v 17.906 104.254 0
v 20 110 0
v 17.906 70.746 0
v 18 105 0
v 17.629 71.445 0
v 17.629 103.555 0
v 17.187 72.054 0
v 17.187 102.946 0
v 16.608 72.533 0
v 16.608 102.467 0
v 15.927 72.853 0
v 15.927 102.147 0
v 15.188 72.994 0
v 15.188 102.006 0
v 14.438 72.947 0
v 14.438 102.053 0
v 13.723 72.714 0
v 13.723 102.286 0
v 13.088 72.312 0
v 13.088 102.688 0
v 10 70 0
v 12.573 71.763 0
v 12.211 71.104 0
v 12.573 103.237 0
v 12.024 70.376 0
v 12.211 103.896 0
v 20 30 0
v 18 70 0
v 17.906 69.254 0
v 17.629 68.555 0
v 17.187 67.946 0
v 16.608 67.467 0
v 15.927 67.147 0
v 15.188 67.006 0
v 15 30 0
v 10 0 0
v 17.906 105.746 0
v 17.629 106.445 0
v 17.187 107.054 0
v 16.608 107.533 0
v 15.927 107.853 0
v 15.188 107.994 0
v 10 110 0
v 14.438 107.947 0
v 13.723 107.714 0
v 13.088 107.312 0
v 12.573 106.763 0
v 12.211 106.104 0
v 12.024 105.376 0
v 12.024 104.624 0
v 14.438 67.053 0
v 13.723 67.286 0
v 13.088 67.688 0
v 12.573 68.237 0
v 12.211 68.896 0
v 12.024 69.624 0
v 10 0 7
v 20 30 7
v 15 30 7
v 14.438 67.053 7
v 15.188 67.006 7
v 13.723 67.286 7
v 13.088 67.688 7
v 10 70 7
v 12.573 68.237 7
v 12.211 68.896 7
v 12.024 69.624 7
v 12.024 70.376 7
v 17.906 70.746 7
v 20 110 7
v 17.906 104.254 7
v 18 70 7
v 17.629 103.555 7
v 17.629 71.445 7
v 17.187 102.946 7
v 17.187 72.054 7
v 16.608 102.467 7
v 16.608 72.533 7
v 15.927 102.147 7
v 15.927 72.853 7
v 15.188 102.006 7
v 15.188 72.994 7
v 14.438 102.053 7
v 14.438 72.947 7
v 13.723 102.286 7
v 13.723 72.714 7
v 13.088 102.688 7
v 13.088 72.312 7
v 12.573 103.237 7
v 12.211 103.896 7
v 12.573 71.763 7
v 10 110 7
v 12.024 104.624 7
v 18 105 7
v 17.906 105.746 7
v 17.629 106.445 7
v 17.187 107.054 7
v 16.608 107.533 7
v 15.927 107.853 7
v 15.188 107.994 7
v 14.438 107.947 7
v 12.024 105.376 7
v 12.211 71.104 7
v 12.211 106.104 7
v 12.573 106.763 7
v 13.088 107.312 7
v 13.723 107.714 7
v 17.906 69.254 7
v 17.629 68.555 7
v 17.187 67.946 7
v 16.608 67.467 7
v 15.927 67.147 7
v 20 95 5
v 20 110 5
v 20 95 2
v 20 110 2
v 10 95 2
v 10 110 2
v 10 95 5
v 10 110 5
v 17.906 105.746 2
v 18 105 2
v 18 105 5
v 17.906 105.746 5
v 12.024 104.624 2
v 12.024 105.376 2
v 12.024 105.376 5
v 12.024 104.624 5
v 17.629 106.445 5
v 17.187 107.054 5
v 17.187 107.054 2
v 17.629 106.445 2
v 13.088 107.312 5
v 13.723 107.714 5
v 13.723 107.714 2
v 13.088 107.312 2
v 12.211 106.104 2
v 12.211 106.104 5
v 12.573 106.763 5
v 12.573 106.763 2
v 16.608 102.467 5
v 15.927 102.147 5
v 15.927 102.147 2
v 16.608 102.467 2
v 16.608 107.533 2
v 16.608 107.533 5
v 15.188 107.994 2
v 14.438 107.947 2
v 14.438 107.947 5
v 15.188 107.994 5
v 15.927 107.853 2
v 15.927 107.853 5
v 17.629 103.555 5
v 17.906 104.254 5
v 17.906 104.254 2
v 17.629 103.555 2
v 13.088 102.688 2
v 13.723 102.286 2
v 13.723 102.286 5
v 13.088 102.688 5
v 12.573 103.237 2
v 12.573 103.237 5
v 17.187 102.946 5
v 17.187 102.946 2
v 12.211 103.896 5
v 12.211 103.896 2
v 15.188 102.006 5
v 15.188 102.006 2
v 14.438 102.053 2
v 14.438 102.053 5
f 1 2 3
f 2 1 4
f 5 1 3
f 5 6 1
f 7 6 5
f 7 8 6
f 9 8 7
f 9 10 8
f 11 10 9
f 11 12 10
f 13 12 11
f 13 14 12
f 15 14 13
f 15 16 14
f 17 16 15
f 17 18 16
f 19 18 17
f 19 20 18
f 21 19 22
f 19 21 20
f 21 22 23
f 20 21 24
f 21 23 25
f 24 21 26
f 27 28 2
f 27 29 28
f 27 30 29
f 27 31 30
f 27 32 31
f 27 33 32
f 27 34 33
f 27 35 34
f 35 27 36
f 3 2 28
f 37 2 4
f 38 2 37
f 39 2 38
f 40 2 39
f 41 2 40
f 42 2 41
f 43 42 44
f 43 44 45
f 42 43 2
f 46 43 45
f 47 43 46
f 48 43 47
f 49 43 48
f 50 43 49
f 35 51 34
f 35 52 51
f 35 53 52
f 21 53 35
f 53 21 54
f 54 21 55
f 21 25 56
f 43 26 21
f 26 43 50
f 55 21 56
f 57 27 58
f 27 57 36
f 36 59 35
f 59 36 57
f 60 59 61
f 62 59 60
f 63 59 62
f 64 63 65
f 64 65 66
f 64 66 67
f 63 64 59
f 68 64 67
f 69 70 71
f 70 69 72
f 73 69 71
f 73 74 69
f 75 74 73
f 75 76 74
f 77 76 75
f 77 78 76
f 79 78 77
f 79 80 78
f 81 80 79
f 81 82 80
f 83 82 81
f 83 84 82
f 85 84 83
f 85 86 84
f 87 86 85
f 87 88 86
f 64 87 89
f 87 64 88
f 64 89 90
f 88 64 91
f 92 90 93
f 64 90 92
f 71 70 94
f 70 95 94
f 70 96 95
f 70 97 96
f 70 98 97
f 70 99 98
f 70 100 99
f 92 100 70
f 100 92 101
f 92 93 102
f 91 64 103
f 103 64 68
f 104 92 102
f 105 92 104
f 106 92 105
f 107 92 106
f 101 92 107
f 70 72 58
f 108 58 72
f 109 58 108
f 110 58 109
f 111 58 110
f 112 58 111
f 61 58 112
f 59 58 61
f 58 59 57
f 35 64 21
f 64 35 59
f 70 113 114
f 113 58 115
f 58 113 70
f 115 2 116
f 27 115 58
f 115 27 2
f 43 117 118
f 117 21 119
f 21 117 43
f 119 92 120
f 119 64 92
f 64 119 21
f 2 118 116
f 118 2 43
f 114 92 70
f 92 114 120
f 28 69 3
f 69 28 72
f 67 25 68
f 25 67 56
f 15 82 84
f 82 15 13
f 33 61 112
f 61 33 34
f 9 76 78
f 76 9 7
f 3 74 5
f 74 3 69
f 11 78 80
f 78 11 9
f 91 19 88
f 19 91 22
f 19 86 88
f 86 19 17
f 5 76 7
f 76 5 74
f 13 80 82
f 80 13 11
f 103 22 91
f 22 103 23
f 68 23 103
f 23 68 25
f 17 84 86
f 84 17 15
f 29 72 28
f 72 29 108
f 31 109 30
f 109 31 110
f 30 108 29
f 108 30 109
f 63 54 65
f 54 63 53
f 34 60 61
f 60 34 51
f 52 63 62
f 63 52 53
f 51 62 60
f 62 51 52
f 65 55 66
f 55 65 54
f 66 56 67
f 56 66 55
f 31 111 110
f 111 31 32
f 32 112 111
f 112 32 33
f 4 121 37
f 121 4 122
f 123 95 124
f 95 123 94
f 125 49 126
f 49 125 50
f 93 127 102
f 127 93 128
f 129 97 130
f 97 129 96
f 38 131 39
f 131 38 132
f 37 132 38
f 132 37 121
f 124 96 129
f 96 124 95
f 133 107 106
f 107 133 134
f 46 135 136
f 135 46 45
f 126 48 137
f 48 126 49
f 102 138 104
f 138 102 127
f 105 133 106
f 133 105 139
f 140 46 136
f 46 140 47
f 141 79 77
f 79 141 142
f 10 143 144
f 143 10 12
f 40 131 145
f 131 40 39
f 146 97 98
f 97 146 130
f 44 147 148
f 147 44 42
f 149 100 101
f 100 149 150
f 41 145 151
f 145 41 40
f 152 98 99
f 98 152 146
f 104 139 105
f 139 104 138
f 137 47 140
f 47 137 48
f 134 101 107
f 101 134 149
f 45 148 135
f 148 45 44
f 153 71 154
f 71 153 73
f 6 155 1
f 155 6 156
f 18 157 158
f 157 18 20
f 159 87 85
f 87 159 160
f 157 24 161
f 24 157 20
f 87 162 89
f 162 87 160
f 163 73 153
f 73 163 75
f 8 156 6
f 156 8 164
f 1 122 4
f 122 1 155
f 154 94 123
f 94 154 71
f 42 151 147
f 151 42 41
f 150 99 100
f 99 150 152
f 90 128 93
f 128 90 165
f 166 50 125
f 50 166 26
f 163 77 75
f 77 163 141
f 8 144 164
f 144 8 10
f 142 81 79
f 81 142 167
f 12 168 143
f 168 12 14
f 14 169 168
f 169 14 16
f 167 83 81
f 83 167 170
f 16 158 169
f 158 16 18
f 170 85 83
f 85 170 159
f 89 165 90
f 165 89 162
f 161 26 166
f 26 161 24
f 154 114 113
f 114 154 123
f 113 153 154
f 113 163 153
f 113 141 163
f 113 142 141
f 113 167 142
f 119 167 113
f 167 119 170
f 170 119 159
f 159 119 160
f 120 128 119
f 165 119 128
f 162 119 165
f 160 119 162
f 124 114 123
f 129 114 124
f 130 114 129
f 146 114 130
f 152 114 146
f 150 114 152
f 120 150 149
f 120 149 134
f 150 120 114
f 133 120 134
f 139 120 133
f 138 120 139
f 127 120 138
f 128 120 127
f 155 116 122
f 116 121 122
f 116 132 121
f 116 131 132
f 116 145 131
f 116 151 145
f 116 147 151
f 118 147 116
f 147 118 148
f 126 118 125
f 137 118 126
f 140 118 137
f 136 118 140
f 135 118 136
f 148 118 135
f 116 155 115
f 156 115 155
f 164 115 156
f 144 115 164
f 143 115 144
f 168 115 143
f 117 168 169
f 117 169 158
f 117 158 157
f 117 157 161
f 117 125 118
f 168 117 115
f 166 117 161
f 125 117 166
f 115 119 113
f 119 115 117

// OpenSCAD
quality=25;

leg_thickness=7;
top_clip_gap=3;

difference()
{
union()
{
    //leg tip
    linear_extrude(height=leg_thickness) polygon(points=[[10,0],[20,30],[15,30]]);

    //leg body
    linear_extrude(height=leg_thickness) polygon(points=[[20,30],[20,70],[10,70],[15,30]]);

    //leg top
    translate([10,70,0]) cube([10,40,leg_thickness]);
}

union()
{
    gap_radius=3;
    translate([15,70,0]) cylinder(r=gap_radius,h=leg_thickness,$fn=quality);
    translate([15,105,0]) cylinder(r=gap_radius,h=leg_thickness,$fn=quality);
    translate([10,95,leg_thickness/2 - top_clip_gap/2]) cube([10,15,top_clip_gap]);
}
}
